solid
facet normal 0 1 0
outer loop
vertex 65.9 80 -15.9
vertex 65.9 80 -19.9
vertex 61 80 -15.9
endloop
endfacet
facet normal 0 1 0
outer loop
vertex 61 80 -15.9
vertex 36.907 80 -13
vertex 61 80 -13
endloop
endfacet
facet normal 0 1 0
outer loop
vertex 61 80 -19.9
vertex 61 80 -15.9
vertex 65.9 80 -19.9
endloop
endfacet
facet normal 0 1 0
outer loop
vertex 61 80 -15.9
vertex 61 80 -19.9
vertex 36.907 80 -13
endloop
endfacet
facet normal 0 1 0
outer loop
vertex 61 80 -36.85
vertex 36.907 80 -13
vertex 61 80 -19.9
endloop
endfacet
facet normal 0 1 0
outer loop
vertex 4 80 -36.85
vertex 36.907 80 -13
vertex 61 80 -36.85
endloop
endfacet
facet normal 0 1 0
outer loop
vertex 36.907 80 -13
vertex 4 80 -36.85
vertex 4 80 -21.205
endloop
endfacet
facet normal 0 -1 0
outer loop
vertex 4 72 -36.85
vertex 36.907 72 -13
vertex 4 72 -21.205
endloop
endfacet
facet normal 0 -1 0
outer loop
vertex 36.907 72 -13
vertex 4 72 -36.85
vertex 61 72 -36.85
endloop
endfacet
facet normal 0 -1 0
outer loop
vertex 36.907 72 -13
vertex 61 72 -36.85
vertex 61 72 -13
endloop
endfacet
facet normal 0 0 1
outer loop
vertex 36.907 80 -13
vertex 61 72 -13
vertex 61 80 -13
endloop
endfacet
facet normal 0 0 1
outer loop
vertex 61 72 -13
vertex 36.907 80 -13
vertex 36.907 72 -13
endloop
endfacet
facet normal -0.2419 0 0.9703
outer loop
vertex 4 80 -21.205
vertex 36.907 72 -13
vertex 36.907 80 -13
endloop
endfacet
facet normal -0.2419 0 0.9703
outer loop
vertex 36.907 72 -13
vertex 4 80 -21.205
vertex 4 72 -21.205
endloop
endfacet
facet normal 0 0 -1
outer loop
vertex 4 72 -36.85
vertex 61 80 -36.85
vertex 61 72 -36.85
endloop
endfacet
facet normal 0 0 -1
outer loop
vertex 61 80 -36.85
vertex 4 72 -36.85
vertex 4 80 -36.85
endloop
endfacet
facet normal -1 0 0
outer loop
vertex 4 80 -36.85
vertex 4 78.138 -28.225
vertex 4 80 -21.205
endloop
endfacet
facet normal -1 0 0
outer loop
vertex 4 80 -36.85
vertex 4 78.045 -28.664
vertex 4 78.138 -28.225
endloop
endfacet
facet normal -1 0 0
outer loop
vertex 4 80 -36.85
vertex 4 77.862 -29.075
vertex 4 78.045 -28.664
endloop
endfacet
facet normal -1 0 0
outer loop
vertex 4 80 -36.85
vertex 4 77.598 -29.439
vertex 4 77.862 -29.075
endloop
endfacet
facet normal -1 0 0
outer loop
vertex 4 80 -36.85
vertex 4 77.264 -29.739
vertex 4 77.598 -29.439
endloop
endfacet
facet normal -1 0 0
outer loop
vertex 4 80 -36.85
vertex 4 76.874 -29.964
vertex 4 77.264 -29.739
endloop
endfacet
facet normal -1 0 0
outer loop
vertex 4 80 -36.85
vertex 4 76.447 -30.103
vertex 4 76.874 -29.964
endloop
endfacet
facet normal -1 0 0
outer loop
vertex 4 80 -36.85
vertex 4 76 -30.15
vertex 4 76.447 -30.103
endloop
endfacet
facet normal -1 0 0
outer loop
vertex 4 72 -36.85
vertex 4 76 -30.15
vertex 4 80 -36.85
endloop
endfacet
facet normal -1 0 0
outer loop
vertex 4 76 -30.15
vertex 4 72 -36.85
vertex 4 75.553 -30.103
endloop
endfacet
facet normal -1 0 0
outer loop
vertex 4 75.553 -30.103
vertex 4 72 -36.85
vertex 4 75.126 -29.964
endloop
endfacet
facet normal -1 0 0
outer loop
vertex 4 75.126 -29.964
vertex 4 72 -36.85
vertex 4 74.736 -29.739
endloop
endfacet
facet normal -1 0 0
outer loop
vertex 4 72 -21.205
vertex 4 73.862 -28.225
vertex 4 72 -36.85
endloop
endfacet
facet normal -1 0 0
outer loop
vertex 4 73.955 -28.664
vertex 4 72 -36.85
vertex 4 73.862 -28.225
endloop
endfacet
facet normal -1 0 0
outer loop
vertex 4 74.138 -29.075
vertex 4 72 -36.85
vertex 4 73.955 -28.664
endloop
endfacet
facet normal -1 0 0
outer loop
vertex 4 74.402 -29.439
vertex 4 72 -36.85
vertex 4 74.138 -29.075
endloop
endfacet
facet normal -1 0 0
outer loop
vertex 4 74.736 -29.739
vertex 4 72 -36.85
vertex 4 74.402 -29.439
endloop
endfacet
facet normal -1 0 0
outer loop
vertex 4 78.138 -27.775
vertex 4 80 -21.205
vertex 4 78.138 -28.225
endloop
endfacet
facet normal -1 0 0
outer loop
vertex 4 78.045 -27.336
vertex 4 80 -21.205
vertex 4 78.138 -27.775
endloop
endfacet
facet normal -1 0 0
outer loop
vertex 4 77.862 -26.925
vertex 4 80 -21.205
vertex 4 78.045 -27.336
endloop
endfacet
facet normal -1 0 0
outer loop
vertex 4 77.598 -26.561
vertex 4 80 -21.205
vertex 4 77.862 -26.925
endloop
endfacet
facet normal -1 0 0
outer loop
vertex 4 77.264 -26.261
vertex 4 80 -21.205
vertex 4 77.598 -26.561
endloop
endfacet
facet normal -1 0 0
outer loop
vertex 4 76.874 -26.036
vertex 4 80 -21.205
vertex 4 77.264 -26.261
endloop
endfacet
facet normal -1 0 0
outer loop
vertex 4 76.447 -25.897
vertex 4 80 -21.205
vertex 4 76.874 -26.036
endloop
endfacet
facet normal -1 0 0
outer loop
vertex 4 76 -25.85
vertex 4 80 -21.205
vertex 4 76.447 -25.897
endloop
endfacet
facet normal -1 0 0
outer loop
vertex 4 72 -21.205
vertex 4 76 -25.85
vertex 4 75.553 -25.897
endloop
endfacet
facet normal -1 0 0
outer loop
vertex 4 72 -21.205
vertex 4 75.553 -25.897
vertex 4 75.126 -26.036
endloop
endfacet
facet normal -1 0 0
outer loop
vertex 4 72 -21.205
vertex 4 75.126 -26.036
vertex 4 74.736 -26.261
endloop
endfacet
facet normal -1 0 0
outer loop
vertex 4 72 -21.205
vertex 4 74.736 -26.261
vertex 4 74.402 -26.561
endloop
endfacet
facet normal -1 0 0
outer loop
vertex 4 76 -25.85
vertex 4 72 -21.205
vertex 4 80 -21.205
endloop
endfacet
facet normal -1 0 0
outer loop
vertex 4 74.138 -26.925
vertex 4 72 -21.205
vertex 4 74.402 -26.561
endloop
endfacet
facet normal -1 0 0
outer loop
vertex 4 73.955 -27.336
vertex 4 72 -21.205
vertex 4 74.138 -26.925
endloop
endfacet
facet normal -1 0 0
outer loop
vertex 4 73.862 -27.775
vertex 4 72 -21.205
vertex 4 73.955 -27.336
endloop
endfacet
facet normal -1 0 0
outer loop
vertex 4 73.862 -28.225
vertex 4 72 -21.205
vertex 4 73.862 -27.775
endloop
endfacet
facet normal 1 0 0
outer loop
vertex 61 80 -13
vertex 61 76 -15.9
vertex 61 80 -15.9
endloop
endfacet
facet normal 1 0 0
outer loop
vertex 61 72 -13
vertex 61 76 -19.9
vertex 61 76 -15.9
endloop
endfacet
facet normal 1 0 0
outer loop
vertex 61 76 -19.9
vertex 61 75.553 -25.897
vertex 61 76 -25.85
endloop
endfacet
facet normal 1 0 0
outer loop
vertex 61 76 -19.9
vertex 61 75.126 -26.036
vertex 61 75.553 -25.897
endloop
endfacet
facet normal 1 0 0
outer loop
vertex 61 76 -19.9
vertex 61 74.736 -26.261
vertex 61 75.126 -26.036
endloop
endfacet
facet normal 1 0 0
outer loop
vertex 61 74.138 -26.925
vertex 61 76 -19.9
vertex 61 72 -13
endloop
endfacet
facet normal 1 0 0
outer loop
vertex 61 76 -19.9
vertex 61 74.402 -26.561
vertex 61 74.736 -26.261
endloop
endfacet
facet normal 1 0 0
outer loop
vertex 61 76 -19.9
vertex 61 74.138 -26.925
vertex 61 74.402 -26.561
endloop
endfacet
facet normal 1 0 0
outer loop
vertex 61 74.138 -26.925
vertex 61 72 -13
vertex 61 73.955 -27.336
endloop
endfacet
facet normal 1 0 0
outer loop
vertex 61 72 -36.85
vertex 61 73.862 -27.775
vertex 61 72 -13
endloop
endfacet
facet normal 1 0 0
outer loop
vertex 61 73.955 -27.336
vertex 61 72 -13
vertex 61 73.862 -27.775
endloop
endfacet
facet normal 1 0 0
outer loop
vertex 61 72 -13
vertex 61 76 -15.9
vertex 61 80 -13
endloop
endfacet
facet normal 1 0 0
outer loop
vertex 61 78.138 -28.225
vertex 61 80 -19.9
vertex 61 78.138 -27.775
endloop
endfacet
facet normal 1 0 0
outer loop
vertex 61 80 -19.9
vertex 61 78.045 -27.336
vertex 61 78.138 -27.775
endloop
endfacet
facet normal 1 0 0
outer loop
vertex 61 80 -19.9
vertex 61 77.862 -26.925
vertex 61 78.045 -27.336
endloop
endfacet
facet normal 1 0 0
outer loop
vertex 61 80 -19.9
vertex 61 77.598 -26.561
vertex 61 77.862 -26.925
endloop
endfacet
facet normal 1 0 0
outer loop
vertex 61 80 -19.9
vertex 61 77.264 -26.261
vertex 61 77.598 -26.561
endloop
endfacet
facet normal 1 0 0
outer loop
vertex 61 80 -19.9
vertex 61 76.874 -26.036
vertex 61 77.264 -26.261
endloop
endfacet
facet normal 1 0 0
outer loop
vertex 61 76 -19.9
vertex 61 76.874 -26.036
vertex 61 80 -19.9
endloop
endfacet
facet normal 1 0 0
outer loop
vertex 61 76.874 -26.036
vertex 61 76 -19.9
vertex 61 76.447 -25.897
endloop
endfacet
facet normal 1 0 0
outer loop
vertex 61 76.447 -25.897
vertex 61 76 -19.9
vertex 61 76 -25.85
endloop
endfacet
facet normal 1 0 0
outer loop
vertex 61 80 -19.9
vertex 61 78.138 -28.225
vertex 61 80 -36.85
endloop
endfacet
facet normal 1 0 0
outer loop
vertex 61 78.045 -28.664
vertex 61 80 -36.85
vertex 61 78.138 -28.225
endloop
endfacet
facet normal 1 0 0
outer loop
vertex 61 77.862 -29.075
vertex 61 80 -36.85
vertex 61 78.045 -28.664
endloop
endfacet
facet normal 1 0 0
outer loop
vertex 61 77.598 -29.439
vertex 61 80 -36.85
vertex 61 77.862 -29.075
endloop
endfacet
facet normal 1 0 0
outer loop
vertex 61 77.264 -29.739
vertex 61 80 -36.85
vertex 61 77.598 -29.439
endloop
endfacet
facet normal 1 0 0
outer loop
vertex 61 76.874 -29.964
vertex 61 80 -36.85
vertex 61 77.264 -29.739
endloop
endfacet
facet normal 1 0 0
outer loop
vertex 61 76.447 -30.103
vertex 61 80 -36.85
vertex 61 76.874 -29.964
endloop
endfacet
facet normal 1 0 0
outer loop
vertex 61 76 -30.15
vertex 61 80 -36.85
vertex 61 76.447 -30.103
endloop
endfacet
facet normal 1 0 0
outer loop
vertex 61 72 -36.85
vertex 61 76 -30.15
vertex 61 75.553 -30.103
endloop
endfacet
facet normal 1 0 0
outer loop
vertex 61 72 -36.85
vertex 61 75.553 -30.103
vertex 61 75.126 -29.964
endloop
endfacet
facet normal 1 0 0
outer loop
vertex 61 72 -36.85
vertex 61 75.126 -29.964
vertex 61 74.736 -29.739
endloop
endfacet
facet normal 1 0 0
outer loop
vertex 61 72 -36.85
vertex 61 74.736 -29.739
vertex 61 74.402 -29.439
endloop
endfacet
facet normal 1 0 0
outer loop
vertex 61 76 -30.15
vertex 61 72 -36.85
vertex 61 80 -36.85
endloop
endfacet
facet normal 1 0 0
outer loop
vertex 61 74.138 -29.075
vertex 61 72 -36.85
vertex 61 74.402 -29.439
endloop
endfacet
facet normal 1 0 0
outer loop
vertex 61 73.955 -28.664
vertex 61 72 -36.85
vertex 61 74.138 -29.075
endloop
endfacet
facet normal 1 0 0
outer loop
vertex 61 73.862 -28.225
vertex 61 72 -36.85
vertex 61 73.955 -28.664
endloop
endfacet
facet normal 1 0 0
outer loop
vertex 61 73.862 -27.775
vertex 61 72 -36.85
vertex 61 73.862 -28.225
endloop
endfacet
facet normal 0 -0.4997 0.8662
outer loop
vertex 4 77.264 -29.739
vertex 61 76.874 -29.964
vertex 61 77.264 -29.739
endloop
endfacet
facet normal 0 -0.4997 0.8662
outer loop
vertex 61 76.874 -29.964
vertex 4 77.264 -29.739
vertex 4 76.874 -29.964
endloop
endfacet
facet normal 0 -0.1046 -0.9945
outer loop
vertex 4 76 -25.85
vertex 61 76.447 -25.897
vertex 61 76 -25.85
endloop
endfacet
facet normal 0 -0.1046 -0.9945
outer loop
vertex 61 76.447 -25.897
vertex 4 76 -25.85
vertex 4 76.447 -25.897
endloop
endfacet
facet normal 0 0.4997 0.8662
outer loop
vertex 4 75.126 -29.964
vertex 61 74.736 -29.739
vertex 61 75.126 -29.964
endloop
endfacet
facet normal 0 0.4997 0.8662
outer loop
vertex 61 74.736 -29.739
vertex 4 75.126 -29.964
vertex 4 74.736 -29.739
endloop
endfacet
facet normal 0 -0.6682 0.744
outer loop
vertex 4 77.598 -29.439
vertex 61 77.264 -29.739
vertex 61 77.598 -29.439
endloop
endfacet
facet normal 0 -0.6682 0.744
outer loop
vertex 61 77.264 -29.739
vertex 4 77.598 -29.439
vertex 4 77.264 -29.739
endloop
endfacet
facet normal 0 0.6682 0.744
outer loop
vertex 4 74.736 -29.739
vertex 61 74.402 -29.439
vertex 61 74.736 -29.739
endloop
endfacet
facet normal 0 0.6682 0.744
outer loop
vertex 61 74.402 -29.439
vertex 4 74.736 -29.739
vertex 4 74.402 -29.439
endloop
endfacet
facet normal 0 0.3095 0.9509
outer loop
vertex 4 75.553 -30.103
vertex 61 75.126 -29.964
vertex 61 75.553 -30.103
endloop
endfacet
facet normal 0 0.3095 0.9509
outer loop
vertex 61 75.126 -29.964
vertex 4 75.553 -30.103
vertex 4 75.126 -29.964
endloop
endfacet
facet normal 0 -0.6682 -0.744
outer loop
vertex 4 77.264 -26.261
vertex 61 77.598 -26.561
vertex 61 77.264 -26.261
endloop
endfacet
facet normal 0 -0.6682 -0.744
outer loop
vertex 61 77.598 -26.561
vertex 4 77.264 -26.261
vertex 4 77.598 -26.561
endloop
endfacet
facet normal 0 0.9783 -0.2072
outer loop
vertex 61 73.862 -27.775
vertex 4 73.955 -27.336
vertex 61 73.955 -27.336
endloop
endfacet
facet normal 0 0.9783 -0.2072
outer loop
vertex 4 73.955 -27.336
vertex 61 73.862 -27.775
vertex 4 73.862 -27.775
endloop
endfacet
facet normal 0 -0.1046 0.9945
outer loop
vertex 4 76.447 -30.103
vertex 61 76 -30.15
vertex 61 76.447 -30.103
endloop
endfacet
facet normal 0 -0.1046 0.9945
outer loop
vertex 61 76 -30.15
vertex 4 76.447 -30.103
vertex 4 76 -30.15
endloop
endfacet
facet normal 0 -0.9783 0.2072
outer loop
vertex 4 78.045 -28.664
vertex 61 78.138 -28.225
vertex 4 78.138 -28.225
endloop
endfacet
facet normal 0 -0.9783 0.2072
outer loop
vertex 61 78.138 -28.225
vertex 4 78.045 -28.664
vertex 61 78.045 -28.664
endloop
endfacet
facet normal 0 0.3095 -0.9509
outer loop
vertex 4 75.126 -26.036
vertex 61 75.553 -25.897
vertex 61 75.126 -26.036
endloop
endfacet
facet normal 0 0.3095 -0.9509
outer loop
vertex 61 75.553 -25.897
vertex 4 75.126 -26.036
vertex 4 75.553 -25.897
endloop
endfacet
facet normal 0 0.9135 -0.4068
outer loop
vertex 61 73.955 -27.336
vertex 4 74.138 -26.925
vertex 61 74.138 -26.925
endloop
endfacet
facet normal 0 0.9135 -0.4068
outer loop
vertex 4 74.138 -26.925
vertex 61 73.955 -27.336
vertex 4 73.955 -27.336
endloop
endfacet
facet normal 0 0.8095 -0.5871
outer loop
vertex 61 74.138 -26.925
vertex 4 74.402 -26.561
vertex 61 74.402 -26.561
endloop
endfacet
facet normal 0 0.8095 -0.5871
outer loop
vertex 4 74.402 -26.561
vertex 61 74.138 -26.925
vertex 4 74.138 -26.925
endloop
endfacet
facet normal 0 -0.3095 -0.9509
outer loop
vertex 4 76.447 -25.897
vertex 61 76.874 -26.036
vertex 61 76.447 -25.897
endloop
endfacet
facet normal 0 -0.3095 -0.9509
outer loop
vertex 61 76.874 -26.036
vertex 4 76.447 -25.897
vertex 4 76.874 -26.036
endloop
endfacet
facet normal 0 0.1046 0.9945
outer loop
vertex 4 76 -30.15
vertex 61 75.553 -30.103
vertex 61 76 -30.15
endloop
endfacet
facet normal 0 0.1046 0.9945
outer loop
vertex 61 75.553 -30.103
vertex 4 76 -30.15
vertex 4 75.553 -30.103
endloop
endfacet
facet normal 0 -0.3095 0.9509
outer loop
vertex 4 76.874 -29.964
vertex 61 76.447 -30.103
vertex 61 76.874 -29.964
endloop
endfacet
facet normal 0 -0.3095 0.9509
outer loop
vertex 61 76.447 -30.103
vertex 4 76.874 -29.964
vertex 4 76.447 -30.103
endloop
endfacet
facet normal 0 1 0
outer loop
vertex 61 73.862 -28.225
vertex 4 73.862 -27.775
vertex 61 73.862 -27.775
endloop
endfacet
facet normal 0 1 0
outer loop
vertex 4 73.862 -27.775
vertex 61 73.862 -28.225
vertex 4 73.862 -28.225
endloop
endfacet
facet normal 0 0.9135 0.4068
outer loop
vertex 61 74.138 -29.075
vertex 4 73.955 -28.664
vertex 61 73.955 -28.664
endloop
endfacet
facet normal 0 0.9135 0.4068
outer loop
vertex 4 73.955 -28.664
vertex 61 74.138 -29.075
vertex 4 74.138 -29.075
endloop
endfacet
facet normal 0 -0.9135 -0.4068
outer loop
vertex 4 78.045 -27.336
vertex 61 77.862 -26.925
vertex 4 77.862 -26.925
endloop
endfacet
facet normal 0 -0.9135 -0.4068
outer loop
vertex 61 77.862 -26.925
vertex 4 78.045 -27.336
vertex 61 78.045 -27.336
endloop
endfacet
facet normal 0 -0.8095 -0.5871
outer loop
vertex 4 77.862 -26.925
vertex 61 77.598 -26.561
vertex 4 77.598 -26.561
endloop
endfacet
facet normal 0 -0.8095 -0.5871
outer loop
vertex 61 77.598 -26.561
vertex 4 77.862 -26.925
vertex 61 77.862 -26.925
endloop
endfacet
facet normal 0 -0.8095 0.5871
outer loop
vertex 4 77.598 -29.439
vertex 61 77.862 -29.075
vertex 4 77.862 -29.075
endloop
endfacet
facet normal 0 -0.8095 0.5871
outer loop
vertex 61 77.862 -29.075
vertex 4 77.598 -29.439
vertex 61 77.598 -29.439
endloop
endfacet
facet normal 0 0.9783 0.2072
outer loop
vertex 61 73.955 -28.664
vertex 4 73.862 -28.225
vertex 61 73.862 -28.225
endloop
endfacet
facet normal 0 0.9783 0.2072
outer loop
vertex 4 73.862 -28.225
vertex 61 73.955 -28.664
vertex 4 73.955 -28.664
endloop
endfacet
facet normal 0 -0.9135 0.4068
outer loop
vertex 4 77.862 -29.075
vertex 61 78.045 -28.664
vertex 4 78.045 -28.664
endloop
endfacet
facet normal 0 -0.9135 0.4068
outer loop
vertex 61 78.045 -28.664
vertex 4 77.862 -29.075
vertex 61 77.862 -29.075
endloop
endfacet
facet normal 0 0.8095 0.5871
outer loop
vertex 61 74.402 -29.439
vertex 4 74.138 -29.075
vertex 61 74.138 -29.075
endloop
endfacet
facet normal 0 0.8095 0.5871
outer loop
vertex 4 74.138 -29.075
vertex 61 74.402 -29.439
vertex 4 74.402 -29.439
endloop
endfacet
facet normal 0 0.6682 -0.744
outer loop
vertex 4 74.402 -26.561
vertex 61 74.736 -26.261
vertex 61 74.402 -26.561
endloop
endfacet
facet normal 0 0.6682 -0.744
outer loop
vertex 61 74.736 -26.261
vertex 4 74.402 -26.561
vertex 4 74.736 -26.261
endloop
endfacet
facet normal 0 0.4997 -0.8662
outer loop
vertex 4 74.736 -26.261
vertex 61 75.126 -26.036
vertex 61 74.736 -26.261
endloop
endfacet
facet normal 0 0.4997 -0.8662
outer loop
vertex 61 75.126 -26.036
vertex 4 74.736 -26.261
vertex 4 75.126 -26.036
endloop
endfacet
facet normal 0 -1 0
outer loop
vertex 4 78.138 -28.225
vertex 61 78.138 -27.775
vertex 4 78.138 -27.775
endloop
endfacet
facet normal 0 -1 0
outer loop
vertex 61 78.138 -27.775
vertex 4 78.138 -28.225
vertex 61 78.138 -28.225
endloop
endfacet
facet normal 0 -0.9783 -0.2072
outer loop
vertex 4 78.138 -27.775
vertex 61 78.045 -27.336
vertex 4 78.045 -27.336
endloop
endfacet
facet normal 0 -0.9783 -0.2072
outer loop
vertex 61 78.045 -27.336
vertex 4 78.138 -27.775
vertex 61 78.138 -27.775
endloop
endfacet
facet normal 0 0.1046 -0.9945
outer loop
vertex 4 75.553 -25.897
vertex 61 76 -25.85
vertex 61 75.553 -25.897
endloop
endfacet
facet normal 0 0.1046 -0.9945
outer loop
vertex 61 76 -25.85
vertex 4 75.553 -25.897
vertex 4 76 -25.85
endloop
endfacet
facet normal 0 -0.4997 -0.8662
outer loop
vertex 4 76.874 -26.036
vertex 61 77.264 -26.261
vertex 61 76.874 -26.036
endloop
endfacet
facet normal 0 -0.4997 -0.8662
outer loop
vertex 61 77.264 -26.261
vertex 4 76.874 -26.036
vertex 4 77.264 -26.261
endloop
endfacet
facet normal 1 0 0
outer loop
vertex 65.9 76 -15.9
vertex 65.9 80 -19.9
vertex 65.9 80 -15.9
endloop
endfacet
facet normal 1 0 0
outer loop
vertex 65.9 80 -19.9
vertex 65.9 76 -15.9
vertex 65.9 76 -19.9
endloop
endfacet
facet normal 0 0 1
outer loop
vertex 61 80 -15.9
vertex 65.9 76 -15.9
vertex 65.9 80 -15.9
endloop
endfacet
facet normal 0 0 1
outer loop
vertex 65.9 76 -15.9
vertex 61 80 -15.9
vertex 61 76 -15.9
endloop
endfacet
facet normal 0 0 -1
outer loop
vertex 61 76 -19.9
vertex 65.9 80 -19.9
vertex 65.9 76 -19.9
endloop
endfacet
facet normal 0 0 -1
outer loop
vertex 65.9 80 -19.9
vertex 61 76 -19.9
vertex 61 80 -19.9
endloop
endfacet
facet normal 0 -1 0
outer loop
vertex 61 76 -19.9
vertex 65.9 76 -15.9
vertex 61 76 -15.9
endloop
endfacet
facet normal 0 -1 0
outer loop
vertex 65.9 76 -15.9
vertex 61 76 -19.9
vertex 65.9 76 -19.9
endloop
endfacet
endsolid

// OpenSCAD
// left wall of middle guard rail of middle track
color ("teal")
union() {
difference() {
union() {
    // left wall
    translate([-15,72,-25])
    rotate([0,76,0])
    cube([30,8,80]);

}
    // top clean up
    translate([0,60,-13])
    cube([90,60,30]);
    
    // top angle clean up
    translate([-30,60,0])
    rotate([0,76,0])
    cube([28.8,60,77]);

    // bottom clean up
    translate([0,60,-58])
    cube([90,60,21.15]);

    // back clean up
    translate([-20,60,-60])
    cube([24,60,60]);

    // front clean up
    translate([61,60,-60])
    cube([10,60,60]);
    
    // left hole
    translate([-4,76,-28])
    rotate([0,90,0])
    cylinder(r=2.15,90, $fn=30);

}
    // notch to secure piece to other guard rail **TIGHT, COULD BE SMALLER AND SHORTER THAN 5. MAYBE 4**
    translate([60.9,76,-19.9])
    cube([5,4,4]);
}
//*/
